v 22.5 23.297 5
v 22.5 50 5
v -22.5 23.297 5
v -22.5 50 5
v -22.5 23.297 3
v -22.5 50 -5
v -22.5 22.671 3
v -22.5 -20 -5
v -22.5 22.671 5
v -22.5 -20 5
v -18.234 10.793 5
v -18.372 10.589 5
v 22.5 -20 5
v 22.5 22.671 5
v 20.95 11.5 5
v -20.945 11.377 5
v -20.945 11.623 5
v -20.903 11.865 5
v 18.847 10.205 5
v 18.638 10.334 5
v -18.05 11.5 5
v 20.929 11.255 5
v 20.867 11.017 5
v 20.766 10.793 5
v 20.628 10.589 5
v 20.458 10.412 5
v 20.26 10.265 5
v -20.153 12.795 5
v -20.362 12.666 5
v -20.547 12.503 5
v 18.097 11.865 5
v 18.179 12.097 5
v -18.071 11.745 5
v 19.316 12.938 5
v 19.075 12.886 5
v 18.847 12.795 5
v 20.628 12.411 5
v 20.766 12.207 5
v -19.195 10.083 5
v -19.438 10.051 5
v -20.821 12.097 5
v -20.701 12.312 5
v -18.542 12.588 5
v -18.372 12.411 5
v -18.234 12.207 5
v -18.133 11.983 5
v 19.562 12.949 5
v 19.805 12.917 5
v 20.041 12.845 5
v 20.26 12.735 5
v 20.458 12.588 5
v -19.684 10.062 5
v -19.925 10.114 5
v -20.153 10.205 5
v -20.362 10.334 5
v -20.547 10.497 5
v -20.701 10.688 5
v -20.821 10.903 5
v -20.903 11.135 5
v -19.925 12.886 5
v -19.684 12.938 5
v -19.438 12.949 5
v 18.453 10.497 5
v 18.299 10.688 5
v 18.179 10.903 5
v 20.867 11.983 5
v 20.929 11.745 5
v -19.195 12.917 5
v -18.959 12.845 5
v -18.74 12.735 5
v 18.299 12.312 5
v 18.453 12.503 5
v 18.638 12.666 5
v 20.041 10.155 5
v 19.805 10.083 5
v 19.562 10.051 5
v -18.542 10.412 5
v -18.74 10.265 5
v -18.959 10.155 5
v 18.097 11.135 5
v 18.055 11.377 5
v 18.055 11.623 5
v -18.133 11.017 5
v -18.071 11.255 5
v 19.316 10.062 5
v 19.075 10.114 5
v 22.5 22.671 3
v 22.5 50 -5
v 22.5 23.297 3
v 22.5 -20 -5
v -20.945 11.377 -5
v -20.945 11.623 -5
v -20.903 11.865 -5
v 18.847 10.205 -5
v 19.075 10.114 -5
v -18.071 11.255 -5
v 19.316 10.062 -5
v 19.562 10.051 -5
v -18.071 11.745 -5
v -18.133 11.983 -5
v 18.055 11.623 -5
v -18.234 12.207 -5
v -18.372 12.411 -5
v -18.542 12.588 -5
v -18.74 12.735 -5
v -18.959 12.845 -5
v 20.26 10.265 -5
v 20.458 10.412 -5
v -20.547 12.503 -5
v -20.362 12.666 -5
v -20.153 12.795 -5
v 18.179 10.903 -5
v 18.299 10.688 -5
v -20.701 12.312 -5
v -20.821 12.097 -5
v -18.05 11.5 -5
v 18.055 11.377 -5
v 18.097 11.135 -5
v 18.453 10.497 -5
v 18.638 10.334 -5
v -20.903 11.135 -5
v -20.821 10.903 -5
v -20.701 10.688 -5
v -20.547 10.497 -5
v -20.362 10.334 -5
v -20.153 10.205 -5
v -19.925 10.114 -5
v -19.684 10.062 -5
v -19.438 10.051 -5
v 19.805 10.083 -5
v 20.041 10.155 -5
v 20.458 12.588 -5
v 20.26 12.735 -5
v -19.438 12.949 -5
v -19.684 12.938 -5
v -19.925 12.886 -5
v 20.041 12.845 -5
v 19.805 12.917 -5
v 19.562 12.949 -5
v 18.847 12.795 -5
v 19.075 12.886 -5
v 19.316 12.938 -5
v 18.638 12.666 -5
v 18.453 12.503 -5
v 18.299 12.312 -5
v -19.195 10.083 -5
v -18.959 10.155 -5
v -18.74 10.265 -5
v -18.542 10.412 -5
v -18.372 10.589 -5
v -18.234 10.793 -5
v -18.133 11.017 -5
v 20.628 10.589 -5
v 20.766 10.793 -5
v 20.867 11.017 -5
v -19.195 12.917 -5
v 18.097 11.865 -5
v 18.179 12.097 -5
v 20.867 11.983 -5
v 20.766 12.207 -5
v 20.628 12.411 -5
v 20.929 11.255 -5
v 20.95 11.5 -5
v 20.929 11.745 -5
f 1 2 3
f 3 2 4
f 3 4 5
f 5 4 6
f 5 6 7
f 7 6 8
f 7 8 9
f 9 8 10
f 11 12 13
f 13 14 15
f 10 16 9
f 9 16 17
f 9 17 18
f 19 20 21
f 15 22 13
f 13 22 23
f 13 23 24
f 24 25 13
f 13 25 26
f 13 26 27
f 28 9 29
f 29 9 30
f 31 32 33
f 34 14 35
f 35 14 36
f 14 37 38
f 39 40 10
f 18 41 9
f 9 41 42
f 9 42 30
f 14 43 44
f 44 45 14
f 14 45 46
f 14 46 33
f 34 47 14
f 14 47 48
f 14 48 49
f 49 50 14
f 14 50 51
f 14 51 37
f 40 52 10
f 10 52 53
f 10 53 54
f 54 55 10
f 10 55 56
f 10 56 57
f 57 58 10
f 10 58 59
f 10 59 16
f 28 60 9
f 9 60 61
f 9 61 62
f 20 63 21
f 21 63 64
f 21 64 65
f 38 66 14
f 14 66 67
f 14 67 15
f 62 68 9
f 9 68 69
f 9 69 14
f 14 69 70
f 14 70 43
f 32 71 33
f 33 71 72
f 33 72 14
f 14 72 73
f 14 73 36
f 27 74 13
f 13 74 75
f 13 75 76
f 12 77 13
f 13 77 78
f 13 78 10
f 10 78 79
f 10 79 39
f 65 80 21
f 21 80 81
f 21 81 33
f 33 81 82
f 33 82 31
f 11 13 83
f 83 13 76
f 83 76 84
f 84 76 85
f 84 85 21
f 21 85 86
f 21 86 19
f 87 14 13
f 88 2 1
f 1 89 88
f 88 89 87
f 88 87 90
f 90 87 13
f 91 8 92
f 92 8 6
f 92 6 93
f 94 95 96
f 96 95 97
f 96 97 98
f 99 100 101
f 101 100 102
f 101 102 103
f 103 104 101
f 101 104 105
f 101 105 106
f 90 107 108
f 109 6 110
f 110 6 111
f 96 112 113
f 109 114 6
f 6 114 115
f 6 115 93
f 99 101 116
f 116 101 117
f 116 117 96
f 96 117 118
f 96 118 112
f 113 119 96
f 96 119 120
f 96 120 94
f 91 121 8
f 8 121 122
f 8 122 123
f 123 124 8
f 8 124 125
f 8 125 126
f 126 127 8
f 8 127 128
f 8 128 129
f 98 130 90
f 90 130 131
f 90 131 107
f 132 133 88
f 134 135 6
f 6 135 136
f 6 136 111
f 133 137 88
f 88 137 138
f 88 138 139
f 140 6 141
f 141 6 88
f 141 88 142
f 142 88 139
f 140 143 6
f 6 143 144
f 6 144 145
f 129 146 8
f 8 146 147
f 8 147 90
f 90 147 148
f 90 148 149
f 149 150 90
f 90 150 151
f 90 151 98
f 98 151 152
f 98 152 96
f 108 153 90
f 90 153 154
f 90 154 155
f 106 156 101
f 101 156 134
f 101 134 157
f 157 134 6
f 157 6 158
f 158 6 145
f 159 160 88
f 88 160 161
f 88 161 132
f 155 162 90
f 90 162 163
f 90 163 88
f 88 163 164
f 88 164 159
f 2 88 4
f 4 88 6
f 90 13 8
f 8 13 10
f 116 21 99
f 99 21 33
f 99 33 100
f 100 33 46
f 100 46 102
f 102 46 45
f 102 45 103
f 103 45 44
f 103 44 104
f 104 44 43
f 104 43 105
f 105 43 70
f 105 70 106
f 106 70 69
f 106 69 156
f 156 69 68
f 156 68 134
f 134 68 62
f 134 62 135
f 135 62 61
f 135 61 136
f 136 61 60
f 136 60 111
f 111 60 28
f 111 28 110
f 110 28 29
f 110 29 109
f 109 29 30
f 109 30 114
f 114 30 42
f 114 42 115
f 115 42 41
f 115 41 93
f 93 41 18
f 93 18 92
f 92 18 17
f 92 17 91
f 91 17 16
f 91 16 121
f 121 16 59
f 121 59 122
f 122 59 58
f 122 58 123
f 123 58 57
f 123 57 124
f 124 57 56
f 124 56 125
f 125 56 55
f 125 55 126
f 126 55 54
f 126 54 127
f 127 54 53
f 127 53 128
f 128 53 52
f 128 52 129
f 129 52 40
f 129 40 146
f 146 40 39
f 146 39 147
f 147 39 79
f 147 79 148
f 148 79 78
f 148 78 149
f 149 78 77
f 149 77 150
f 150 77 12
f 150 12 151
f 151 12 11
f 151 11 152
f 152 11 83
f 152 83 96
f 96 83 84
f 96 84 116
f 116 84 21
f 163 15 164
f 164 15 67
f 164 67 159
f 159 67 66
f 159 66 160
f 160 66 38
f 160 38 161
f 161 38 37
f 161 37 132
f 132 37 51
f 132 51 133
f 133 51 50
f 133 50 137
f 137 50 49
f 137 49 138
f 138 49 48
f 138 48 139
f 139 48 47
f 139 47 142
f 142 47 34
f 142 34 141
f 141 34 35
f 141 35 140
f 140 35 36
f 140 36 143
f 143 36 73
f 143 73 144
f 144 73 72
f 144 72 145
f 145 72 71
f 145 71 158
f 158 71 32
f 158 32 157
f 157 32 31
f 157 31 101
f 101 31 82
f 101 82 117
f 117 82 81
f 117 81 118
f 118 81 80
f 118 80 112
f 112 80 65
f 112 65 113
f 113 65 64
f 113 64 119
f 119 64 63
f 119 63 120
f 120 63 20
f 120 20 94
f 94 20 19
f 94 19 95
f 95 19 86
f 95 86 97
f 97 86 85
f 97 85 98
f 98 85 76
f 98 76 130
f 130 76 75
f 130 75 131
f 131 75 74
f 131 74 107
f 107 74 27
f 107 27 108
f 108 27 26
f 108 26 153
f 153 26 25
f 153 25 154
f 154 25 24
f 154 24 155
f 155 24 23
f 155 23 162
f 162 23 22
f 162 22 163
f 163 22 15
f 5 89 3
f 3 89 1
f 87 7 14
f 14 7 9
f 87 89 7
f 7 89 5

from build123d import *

# Parameters (mm, degrees)
SKETCH2_W           = 45
SKETCH2_H           = 10
BOSS_EXTRUDE1_DEPTH = 40
SKETCH4_W           = 45
SKETCH4_H           = 10
BOSS_EXTRUDE2_DEPTH = 10
SKETCH8_W           = 45
SKETCH8_H           = 10
BOSS_EXTRUDE3_DEPTH = 20
SKETCH9_R           = 1.45
CUT_EXTRUDE2_DEPTH  = 20
SKETCH10_W          = 45
SKETCH10_H          = 0.626165357
CUT_EXTRUDE3_DEPTH  = 2


with BuildPart() as part:
    # Sketch2 → Boss-Extrude1 (new body)
    with BuildSketch(Plane(origin=(0, 0, 0), x_dir=(1, 0, 0), z_dir=(0, 1, 0))):
        Rectangle(SKETCH2_W, SKETCH2_H)
    extrude(amount=BOSS_EXTRUDE1_DEPTH)

    # Sketch4 → Boss-Extrude2 (add)
    with BuildSketch(Plane(origin=(0, 40, 0), x_dir=(1, 0, 0), z_dir=(0, 1, 0))):
        Rectangle(SKETCH4_W, SKETCH4_H)
    extrude(amount=BOSS_EXTRUDE2_DEPTH)

    # Sketch8 → Boss-Extrude3 (add)
    with BuildSketch(Plane.XZ):
        Rectangle(SKETCH8_W, SKETCH8_H)
    extrude(amount=BOSS_EXTRUDE3_DEPTH)

    # Sketch9 → Cut-Extrude2 (cut)
    with BuildSketch(Plane.XY.offset(5)):
        with Locations((19.5, 11.5)):
            Circle(SKETCH9_R)
        with Locations((-19.5, 11.5)):
            Circle(SKETCH9_R)
    extrude(amount=-CUT_EXTRUDE2_DEPTH, mode=Mode.SUBTRACT)

    # Sketch10 → Cut-Extrude3 (cut)
    with BuildSketch(Plane.XY.offset(5)):
        with Locations((0, 22.984410254)):
            Rectangle(SKETCH10_W, SKETCH10_H)
    extrude(amount=-CUT_EXTRUDE3_DEPTH, mode=Mode.SUBTRACT)


solid = part.part
